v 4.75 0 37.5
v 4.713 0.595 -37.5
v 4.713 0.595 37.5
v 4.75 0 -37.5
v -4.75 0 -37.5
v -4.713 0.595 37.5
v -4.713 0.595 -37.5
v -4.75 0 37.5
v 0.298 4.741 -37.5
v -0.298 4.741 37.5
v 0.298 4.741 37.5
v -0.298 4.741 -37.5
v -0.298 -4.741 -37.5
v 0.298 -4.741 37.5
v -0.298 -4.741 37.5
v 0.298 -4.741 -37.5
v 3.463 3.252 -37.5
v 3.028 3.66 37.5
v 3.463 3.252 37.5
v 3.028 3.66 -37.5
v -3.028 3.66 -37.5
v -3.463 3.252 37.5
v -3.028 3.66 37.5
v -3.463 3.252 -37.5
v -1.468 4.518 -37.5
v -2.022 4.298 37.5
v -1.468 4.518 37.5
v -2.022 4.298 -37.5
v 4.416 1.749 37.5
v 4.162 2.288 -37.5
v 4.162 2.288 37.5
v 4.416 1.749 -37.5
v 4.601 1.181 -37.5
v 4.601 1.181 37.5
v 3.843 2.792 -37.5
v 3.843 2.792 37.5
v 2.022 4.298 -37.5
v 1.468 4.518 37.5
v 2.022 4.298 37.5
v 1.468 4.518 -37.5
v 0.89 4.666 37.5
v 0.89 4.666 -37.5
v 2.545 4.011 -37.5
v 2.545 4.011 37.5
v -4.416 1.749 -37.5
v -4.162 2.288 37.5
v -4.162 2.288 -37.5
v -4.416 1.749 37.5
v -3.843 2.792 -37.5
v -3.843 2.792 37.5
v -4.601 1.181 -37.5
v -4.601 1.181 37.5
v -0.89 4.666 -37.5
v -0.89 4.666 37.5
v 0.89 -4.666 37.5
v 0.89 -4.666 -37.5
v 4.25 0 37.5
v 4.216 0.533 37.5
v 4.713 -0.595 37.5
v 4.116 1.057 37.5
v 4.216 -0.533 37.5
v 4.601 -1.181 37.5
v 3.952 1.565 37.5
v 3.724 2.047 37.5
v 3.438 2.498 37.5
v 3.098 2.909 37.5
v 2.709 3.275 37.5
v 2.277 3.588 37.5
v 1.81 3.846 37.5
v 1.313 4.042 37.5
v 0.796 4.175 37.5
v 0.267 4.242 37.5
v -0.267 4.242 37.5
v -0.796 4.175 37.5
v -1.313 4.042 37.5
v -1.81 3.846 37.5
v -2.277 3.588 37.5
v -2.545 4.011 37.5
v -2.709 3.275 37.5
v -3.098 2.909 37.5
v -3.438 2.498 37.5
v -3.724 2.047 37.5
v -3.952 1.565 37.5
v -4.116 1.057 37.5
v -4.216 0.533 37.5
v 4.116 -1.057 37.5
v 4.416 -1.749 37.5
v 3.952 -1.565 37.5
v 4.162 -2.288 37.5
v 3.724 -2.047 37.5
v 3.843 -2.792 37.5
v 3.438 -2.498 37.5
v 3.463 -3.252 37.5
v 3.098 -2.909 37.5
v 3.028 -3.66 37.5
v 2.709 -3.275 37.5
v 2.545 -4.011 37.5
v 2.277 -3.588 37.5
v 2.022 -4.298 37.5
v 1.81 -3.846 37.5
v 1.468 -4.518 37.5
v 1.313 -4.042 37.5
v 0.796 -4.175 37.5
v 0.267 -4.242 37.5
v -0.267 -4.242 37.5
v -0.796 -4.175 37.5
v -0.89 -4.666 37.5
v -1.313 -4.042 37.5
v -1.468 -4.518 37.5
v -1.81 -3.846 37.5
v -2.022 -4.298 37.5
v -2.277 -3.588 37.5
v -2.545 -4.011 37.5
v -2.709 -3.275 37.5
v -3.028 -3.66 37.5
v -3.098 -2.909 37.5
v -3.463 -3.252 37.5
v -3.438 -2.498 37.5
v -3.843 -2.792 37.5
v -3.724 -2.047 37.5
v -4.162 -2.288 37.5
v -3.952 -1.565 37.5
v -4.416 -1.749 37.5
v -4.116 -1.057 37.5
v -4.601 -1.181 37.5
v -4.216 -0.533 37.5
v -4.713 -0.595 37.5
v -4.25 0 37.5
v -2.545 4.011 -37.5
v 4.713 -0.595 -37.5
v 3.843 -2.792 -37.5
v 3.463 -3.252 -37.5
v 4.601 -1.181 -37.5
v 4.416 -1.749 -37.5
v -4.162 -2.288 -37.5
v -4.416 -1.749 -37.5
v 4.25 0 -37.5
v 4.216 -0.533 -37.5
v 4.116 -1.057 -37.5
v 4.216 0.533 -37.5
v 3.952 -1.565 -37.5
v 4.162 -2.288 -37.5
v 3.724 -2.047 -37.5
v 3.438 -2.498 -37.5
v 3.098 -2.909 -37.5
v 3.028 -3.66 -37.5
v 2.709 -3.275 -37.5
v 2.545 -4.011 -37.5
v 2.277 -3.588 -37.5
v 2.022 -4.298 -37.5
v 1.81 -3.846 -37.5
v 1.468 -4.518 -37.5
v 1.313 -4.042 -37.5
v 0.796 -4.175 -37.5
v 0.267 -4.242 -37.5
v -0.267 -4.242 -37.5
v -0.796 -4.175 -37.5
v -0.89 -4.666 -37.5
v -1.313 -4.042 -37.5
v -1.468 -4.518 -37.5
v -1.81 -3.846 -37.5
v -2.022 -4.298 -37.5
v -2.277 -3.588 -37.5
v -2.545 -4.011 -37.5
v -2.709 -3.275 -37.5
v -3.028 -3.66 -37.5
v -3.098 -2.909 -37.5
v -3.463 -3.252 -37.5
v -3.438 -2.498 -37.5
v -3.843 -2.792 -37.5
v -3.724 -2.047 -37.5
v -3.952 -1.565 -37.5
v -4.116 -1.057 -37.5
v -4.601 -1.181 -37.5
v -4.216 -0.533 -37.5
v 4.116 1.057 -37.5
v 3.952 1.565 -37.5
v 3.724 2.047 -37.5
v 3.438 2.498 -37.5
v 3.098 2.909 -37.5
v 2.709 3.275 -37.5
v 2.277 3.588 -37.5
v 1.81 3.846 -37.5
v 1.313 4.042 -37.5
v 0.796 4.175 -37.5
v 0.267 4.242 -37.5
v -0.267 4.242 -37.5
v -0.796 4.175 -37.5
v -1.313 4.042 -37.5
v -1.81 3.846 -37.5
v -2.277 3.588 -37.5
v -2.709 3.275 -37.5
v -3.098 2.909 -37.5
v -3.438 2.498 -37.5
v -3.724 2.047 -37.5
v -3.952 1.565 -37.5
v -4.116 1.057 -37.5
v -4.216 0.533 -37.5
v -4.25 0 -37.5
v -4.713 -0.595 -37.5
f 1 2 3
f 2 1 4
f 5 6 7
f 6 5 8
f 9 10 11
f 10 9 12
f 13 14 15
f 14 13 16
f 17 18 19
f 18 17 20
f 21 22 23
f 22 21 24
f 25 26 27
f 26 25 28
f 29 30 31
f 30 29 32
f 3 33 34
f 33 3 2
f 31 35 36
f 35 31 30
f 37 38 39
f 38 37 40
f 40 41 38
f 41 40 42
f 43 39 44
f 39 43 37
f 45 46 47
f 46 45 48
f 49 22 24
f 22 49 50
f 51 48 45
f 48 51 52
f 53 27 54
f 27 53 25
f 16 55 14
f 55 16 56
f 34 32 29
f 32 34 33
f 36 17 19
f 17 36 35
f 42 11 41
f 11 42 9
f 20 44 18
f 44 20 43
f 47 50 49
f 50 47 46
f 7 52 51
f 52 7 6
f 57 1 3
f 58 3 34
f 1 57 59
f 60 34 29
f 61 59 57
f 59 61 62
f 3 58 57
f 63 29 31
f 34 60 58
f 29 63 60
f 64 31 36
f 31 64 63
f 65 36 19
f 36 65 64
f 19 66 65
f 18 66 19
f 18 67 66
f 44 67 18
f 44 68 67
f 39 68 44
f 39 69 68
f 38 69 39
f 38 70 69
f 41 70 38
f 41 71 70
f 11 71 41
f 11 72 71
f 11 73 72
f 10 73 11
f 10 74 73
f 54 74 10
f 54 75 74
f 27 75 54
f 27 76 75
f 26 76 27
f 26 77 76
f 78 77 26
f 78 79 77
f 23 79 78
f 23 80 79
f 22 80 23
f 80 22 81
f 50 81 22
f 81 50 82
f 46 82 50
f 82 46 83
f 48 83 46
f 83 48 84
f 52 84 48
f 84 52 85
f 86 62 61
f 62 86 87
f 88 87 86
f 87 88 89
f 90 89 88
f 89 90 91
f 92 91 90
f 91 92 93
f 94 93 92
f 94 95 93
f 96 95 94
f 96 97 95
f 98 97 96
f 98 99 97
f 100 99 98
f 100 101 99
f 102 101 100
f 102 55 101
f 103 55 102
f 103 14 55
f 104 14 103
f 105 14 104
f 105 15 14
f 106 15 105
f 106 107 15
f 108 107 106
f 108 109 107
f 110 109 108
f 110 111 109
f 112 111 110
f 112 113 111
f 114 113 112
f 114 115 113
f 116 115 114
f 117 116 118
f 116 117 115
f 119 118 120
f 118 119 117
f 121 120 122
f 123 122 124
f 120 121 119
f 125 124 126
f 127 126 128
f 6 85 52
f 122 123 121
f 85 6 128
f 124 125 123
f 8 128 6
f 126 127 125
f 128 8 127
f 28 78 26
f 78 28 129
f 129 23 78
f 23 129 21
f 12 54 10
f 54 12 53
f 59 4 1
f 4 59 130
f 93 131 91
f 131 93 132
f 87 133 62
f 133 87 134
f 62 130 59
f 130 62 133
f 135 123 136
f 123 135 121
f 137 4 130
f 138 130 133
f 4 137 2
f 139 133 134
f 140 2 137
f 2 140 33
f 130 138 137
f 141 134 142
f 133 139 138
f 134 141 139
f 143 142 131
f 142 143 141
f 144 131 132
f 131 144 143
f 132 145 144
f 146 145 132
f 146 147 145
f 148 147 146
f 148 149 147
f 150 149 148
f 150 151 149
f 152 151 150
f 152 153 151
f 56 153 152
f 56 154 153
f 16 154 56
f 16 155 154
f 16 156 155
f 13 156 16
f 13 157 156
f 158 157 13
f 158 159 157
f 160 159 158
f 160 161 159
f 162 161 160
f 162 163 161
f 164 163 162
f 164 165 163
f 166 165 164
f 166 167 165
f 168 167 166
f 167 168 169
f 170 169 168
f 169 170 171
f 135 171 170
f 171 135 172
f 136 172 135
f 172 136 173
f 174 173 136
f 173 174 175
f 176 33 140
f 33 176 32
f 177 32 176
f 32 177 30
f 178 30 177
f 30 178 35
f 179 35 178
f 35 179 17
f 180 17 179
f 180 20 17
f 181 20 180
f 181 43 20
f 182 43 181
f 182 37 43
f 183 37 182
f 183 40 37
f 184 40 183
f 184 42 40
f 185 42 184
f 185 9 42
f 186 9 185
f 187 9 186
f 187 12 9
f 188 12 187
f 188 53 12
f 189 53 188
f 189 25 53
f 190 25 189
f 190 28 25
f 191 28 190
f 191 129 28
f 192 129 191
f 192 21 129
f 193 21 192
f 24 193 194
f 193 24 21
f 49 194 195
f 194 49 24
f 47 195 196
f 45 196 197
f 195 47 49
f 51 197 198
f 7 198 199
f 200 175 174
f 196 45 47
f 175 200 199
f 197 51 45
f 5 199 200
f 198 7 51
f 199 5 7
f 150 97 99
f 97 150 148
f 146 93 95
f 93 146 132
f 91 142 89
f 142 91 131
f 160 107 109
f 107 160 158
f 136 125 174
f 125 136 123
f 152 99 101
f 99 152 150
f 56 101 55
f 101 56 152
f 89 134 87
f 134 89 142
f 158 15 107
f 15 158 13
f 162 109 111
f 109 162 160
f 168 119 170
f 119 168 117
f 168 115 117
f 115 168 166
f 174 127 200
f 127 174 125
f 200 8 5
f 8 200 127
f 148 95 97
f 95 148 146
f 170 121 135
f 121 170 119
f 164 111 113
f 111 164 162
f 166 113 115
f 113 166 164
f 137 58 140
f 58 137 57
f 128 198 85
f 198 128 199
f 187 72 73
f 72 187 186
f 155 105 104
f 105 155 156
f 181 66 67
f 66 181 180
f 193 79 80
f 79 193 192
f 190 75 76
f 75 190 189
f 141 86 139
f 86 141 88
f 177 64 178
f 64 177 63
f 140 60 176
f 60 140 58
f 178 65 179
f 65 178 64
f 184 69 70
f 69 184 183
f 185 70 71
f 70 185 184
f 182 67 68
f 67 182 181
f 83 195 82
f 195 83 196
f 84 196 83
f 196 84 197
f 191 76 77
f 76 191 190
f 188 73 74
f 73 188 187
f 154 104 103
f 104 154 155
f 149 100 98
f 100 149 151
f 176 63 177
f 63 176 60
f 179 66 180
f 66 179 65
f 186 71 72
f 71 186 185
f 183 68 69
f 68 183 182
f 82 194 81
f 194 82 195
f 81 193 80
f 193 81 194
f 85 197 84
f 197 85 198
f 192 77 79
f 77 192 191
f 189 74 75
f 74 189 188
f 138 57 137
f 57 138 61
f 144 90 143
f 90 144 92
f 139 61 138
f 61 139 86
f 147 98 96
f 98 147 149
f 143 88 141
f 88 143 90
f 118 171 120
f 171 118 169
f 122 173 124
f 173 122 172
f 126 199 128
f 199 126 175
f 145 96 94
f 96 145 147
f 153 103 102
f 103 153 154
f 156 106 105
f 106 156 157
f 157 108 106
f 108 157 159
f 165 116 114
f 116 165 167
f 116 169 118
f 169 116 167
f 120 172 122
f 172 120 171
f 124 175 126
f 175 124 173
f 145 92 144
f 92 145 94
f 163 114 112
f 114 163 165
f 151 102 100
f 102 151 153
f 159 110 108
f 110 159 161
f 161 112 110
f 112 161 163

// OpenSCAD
$fn = 50;


difference() {
	union() {
		translate(v = [0, 0, -37.5000000000]) {
			cylinder(h = 75, r = 4.7500000000);
		}
	}
	union() {
		translate(v = [0, 0, -100.0000000000]) {
			cylinder(h = 200, r = 4.2500000000);
		}
	}
}
